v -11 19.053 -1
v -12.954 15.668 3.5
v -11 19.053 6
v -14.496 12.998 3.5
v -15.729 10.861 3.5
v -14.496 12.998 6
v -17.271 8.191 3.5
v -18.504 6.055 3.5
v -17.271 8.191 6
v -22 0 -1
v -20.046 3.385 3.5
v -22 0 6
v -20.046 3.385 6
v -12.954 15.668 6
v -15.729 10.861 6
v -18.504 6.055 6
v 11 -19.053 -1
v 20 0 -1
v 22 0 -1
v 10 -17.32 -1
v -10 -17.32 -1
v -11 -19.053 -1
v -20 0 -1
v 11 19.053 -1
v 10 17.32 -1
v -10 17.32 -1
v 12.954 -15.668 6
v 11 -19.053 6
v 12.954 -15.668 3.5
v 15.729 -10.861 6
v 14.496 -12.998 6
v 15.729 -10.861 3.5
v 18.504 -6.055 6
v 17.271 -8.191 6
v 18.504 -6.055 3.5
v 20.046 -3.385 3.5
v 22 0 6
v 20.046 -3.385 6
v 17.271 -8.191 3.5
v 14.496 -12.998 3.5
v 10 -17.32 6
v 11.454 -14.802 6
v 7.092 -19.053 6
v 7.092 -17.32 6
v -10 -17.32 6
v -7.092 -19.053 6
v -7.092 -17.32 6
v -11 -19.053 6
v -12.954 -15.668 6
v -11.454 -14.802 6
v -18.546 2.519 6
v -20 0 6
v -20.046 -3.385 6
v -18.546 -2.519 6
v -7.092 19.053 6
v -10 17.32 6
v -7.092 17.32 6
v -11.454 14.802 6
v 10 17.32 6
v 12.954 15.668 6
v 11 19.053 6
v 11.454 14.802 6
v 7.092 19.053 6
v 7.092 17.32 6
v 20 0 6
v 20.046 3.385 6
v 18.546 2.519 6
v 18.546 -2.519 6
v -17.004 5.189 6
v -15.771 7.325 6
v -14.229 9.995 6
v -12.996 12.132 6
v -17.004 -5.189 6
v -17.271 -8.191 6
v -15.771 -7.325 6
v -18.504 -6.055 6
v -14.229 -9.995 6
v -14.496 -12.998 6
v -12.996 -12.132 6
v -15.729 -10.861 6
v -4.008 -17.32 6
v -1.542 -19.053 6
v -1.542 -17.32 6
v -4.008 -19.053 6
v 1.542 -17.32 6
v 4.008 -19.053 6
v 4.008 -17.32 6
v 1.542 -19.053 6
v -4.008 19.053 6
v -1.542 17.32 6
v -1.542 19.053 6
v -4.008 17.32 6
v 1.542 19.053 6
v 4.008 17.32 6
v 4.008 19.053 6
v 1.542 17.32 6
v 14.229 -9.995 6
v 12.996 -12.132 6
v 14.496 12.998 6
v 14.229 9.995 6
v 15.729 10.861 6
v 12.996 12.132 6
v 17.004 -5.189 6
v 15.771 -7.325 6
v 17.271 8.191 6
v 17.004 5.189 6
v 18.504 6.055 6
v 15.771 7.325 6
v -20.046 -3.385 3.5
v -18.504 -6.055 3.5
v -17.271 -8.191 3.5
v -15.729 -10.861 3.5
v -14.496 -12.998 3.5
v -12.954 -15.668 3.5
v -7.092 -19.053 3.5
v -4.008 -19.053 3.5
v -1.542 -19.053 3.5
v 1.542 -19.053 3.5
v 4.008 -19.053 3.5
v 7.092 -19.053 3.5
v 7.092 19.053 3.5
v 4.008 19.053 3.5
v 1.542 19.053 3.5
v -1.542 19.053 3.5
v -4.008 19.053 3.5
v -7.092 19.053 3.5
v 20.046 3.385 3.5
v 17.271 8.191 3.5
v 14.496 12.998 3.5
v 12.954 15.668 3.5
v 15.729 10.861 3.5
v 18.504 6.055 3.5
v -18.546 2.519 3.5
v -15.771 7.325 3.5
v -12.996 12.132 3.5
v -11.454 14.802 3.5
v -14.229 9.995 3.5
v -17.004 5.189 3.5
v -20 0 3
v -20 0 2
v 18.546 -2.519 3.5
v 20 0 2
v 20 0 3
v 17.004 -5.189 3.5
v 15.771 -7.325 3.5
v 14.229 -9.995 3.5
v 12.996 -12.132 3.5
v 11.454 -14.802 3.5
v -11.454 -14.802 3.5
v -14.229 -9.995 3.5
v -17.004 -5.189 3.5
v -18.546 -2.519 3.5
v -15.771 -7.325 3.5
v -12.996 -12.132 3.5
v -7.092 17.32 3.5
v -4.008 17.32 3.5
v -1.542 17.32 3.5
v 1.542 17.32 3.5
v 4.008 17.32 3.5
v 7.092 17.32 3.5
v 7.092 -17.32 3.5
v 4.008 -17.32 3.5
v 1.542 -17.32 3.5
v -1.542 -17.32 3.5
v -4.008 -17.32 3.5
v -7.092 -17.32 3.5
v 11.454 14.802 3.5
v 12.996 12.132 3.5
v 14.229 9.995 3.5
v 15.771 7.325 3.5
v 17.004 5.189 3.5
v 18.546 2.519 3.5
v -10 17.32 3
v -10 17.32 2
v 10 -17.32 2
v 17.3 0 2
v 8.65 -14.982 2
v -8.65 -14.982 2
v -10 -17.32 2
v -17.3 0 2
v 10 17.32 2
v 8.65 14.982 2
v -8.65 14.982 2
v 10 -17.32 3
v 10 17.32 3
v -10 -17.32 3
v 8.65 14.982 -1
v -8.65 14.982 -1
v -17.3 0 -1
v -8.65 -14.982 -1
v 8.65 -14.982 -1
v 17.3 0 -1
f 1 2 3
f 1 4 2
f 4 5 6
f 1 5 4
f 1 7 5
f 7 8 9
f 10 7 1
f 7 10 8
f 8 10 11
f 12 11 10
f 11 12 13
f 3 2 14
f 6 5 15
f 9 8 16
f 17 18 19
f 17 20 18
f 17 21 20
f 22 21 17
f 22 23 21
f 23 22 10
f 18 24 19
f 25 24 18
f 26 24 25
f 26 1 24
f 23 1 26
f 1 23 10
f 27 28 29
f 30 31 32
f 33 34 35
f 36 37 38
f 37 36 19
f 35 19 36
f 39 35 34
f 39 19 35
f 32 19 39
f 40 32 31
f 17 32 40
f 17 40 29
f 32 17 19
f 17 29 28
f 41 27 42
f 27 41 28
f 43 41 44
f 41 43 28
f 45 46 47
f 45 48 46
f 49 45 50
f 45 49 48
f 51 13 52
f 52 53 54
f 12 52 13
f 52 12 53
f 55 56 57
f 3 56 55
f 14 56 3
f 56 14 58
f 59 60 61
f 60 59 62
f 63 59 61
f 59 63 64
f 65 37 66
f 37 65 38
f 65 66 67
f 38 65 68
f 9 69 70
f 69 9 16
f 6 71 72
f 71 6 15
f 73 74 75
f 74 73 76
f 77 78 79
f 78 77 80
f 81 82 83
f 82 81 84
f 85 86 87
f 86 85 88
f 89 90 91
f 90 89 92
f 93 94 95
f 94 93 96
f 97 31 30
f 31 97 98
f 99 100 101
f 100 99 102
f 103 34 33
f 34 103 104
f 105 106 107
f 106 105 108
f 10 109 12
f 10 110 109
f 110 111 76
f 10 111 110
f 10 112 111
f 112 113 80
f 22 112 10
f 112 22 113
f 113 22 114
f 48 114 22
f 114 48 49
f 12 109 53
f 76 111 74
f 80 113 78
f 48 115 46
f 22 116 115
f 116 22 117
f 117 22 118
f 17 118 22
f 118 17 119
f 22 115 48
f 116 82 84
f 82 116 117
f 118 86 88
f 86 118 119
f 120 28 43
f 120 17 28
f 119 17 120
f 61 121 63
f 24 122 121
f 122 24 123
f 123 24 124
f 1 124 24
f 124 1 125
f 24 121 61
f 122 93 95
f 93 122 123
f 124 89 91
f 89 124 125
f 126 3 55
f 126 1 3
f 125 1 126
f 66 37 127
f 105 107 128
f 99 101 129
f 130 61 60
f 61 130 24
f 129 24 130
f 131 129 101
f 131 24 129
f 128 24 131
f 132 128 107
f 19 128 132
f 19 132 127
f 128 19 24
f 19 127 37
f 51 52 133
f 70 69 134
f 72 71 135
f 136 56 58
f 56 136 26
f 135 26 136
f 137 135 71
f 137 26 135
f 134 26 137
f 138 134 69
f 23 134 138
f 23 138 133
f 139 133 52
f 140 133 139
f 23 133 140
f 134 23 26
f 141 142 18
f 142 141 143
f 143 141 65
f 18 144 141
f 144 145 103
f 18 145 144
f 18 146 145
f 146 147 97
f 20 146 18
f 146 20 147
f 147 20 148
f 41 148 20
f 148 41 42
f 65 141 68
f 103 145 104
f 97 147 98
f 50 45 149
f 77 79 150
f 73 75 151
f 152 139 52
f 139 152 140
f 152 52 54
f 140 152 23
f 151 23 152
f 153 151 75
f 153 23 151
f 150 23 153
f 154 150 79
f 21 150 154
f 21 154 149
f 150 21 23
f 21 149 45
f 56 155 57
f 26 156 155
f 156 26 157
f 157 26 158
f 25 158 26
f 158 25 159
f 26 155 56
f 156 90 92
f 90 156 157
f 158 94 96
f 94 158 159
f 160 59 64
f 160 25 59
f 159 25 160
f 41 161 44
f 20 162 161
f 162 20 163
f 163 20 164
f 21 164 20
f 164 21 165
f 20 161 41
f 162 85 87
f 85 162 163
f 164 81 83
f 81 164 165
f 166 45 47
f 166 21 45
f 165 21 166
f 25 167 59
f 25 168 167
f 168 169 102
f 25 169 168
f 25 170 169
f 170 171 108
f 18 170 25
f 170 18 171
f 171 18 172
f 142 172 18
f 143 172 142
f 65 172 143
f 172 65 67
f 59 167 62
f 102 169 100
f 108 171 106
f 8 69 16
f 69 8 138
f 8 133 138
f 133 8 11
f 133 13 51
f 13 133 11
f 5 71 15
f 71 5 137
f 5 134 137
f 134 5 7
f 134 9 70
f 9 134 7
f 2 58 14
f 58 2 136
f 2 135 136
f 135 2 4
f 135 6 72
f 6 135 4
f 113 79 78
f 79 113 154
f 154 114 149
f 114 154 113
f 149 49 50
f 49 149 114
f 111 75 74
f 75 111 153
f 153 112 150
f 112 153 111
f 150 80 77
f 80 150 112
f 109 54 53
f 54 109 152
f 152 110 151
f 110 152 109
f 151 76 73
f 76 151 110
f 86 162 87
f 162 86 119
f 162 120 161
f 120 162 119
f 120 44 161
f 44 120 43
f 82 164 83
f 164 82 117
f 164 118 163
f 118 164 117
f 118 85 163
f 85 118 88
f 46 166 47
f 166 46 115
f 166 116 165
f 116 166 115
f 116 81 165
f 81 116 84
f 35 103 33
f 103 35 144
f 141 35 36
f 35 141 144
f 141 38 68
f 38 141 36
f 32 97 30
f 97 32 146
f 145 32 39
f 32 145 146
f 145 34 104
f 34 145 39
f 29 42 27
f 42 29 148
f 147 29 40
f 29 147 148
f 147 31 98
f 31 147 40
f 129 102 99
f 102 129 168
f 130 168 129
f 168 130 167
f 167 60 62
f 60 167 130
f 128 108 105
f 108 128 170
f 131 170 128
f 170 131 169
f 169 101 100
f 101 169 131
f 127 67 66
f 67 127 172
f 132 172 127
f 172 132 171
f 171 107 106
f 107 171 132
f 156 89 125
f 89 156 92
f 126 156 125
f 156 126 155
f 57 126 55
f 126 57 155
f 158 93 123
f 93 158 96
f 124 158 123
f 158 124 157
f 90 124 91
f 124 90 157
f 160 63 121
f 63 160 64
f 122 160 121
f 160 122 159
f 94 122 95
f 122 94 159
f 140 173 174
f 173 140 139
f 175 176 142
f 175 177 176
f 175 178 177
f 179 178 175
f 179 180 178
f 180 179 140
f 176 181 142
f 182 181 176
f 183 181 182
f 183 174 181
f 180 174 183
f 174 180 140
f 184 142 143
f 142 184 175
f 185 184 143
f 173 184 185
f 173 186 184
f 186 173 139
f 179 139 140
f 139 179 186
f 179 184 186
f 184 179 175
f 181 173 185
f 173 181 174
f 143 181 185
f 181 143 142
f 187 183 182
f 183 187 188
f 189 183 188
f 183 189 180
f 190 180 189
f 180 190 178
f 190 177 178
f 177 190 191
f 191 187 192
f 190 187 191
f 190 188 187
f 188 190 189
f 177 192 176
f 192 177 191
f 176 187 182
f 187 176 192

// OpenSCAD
// file: neuturm.scad
use <MCAD/regular_shapes.scad>

// Setup
// höhe, seite, array durchgänge, array tore
hoehe = 50;
radius = 18.5;
seite = 18.5;
tore = [4];
durchgaenge = [];

// Berechnete größen

sideRad = seite * sqrt(3)/2;


module move(x=0,y=0,z=0,rx=0,ry=0,rz=0)
{ translate([x,y,z])rotate([rx,ry,rz]) children(); }

module wallmove(x=0, y=0, z=0, seite=0) {
  rotate([0,0,seite*60]) translate([x,y,z]) children();
}

function flatten(l) = [ for (a = l) for (b = a) b ] ;


/* move(30,sideRad+10,1, 0, 0, 0) zinnenkranz();
turm(); */

module turm() {
  difference() {
    // turmkörper
    union() {
      hexagon_tube(hoehe, radius, 1);
      hexagon_prism(2,radius);
      for (i = tore) {
        wallmove(0, sideRad-.1, 0, i)
        tor();
      }
        mauerstruktur();
    }
    for (i = flatten([durchgaenge, tore])) {
      wallmove(0, sideRad-2, 1, i)
       toroeffnung();
    }
    for (i = [1:6]) {
      wallmove(0, sideRad-2, 10, i)
       fenster();
    }
    move(0,0,1) cylinder_tube(5, sideRad-2, radius);
  }
}

module zinnenkranz() {
move(0, 0, -1)
  difference() {
    union() {
    difference() {
      translate([0,0,0]) hexagon_tube(7,radius +3.5,2);
        zinnen();
    }
    move(0,0,3) hexagon_prism(1, radius +1.5);
    move(0,0,0) hexagon_prism(3, radius -1.2);
    }
    for(i = durchgaenge) {
    rotate([0,0,i*60]) translate([0, sideRad+2.2, 4]) cube([radius*2,4,radius +1.5], center = true);
    }
  }
}

module tor() {
  torbreit = seite;
  torhoch = torbreit*1.8;
  color("Green") {
    move(0,0, torhoch/2) cube([torbreit, 1.2, torhoch], center = true);
    move(0,1, torhoch/2) difference() {
      cube([torbreit, 1.5, torhoch], center=true);
      move(0,0,2) cube([torbreit-3, 1, torhoch + 3], center=true);
    }
  }
}

module toroeffnung() {
  $fn = 8;
  torbreit = seite - seite/5;
  torhoch = hoehe/3 - (hoehe/30);
  rundungdm = torbreit/2 -torbreit/10;
  //
  translate([0,5,rundungdm*4]) {
    union() {
      rotate([90,0,0]) {
        linear_extrude(6) {
          circle(rundungdm);
          move(0, -rundungdm*2) square([rundungdm*1.8, (rundungdm*4)-3], center=true);
        }
      }
    }
  }
}

module fenster() {
  $fn = 8;
  fensterbreit = seite/5;
  fensterhoch = hoehe;
  fensterdm = fensterbreit/2 -fensterbreit/10;
  //
  translate([0,5,fensterdm*14]) {
    union() {
      rotate([90,0,0]) {
        linear_extrude(6) {
          circle(fensterdm);
          move(0, -fensterdm*4) square([fensterdm*1.8, (fensterdm*10)-3], center=true);
        }
      }
    }
  }

}

module mauerstruktur() {
  for (i = [1:6]) {
    move(rz=i*60)
    move(x=-sideRad/2-.5,y=-sideRad+0.1, rx=90) {
        scale([radius / 72, (hoehe-2) / 108, 0.9/ 256])
        surface(file = "mauer2.png", convexity = 3);
    }
  }
}


module solomauer() {
  cube([seite, 1, hoehe]);
  move(x=0,y=0, rx=90) {
    scale([radius / 72, (hoehe-2) / 108, 0.9/ 256])
    surface(file = "mauer2.png", convexity = 3);
  }
}


module zinnen() {
  zinB = seite/6;
  zinVers = seite/6 * 1.8;
  echo(zinB);
  for (i = [1:6]) {
    rotate([0,0,i*60]) {
      color("Blue") {
        translate([0, sideRad, 7]) {
          translate([-zinVers,0,0]) cube([zinB,7,5], center= true);
          translate([0,0,0]) cube([zinB,7,5], center= true);
          translate([zinVers,0,0]) cube([zinB,7,5], center= true);
        }
      }
    }
  }
}
// main file
use <neuturm.scad>

hoehe = 50;
radius = 18.5;
seite = 18.5;
tore = [4];
durchgaenge = [];



zinnenkranz();
